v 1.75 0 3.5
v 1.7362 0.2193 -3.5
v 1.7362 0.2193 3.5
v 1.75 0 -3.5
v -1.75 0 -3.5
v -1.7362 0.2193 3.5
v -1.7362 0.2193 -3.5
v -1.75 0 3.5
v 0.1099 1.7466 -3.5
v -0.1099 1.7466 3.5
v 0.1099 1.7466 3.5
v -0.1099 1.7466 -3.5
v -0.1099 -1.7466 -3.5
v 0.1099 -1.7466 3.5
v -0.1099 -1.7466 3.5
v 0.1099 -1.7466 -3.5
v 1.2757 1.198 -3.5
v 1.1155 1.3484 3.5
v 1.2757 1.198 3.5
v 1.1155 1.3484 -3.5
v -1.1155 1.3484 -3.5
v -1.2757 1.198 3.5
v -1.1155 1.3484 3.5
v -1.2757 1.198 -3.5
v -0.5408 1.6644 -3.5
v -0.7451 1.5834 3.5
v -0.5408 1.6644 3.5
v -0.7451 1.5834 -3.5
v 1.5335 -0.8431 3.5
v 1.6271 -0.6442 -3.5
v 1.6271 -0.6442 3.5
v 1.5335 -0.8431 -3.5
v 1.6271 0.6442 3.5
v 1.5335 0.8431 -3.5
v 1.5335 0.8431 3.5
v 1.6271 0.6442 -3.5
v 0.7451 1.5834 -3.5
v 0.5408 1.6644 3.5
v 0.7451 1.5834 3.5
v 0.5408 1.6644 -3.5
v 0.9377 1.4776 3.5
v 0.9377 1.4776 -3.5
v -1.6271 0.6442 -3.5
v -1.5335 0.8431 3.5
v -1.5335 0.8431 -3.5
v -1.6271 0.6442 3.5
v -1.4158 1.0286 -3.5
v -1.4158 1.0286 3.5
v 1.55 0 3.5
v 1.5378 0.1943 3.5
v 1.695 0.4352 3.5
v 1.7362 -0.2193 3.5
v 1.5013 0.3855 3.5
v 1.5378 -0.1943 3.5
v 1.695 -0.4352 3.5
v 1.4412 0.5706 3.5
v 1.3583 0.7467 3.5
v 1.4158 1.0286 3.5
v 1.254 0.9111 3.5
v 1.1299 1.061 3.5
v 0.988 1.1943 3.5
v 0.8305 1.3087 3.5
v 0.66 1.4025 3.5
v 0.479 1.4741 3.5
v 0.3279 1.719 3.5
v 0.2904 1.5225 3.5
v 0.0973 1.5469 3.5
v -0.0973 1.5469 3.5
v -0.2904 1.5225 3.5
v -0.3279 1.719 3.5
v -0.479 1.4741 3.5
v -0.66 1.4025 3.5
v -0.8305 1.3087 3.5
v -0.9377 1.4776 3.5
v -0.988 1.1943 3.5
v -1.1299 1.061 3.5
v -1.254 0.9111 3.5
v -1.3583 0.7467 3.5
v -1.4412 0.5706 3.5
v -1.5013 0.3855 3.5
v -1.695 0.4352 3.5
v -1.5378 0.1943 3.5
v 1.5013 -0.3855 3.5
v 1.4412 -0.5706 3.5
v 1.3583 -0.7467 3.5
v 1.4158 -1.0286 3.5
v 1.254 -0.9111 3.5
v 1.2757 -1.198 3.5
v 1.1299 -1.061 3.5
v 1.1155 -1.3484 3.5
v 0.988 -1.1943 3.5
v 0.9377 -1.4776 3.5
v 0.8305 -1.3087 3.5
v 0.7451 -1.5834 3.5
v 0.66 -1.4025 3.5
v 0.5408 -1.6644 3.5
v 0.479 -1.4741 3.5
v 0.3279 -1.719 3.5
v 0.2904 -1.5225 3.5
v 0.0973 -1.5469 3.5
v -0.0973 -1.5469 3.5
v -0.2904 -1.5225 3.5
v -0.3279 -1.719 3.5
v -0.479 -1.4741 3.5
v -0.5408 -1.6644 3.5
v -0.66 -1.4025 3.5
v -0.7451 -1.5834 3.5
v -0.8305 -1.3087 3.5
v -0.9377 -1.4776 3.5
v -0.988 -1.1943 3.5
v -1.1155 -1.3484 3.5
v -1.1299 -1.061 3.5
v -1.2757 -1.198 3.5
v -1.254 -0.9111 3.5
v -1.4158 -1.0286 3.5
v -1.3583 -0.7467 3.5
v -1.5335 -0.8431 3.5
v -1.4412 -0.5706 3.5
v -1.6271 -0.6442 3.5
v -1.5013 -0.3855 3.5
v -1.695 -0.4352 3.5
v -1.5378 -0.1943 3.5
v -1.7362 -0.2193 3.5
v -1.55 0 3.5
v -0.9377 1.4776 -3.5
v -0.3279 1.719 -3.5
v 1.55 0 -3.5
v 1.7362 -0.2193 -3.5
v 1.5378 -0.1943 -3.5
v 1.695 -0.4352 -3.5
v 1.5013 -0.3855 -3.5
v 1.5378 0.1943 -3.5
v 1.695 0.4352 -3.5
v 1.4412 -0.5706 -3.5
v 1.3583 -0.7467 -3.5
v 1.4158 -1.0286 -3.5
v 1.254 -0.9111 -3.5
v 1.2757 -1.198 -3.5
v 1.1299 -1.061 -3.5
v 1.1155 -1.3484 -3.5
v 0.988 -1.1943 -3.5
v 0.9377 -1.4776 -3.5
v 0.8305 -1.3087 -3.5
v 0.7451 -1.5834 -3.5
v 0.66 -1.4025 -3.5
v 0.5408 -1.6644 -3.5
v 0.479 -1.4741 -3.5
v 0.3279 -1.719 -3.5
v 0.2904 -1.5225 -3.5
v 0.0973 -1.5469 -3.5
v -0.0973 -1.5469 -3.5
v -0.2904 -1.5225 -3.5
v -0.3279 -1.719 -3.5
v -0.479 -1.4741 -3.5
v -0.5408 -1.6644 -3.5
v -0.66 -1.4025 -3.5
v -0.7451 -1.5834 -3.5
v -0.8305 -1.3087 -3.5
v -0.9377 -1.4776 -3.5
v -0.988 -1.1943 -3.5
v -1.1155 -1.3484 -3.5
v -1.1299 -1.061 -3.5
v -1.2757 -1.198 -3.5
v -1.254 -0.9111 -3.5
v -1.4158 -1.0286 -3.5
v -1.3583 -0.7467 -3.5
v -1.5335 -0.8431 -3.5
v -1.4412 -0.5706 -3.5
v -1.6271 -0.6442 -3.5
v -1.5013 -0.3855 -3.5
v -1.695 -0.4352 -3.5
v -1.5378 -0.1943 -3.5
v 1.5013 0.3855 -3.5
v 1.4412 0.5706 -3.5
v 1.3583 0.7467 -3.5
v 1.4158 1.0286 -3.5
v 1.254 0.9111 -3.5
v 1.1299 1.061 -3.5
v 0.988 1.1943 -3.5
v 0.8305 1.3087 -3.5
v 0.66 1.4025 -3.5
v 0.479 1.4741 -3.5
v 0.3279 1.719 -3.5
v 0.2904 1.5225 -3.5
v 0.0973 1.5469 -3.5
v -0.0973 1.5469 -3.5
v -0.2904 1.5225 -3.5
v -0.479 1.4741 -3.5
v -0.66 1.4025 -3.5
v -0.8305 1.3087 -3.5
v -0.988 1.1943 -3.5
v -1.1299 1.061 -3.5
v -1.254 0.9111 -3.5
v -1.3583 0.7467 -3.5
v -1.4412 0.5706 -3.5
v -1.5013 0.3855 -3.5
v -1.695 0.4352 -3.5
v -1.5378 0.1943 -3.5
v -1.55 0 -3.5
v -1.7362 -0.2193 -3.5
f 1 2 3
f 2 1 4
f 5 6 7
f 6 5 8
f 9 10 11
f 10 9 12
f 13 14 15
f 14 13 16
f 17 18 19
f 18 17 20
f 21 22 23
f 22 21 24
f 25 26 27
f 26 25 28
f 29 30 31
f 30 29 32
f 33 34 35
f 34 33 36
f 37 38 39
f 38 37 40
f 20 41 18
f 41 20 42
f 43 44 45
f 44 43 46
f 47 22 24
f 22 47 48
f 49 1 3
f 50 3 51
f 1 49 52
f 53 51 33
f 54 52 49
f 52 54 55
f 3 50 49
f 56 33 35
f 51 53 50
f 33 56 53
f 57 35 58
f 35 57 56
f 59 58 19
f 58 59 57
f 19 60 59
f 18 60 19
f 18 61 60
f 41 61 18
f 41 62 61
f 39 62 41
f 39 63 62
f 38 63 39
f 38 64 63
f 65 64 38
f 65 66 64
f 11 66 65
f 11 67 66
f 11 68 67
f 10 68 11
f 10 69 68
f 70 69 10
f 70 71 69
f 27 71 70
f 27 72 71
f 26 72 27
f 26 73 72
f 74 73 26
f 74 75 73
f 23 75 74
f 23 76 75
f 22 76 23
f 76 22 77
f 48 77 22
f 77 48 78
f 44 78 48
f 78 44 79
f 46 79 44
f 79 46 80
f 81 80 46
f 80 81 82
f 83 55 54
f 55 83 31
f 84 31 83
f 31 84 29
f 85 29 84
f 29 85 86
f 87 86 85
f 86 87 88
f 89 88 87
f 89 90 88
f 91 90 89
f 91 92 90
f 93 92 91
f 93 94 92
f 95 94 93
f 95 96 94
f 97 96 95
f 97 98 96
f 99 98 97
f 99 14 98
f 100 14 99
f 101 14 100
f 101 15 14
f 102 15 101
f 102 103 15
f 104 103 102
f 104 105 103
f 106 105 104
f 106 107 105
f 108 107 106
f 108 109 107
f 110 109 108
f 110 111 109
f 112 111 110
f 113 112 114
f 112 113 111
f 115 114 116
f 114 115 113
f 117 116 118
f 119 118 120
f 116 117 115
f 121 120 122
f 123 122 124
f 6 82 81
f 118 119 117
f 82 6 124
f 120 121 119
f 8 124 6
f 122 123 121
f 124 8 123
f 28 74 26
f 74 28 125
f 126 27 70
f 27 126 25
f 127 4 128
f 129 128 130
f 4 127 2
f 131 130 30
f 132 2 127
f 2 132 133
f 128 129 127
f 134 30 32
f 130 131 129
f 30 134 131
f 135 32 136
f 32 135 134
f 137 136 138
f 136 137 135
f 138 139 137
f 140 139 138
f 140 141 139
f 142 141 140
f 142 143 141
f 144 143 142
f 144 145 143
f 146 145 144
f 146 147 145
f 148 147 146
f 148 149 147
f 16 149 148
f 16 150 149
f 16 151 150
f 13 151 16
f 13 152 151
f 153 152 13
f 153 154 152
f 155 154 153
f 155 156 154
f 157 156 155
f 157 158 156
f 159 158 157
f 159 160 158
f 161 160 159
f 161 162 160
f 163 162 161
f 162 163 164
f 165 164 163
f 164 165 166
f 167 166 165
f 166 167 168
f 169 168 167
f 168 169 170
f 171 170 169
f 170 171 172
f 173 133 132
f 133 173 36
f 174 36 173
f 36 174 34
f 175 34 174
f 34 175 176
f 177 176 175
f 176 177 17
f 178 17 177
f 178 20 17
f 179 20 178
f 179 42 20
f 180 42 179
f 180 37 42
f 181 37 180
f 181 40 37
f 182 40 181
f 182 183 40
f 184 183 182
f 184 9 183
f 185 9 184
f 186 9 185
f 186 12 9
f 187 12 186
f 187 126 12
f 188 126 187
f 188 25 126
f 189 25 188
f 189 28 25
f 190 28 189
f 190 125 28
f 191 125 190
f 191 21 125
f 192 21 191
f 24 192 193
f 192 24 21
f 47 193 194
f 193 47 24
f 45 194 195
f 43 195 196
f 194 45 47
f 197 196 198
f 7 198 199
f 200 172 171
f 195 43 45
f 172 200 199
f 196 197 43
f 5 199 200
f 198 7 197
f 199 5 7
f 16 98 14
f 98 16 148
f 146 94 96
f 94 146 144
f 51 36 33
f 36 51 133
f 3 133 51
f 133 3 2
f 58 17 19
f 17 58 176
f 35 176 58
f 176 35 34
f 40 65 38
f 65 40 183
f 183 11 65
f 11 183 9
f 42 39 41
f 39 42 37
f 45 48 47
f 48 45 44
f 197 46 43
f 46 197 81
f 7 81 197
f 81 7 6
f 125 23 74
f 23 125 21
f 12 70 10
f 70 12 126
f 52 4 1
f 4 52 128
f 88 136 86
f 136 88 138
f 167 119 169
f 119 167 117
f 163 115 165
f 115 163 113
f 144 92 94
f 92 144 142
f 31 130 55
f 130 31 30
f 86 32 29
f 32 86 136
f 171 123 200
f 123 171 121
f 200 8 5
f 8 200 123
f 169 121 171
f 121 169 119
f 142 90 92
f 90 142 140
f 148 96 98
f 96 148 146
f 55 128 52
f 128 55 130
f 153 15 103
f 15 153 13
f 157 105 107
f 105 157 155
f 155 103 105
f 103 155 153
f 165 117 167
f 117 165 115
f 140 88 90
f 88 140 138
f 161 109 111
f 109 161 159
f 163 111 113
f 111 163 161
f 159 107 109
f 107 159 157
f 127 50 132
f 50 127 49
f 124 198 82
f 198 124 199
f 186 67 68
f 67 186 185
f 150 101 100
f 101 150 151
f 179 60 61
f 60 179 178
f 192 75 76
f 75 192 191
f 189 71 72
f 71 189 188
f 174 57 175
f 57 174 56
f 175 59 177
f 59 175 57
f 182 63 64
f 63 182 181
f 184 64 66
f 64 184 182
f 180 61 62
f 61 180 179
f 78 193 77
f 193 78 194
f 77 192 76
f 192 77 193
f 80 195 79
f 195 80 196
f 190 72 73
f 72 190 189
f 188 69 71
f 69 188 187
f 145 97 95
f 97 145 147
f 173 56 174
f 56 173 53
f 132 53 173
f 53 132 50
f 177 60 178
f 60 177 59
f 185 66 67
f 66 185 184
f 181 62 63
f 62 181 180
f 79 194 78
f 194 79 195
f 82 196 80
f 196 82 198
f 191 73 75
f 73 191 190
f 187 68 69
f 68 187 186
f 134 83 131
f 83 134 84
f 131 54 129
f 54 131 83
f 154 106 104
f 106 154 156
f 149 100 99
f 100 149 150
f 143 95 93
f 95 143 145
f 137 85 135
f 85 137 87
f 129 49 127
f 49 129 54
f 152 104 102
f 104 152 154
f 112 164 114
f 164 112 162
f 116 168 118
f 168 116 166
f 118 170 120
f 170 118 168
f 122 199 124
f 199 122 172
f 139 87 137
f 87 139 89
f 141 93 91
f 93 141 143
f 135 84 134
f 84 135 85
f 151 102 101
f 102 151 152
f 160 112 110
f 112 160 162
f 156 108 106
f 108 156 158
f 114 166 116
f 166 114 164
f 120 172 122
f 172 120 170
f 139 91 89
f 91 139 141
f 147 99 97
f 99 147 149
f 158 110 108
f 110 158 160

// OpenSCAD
$fn = 50;


difference() {
	union() {
		translate(v = [0, 0, -3.5000000000]) {
			cylinder(h = 7, r = 1.7500000000);
		}
	}
	union() {
		translate(v = [0, 0, -100.0000000000]) {
			cylinder(h = 200, r = 1.5500000000);
		}
	}
}
